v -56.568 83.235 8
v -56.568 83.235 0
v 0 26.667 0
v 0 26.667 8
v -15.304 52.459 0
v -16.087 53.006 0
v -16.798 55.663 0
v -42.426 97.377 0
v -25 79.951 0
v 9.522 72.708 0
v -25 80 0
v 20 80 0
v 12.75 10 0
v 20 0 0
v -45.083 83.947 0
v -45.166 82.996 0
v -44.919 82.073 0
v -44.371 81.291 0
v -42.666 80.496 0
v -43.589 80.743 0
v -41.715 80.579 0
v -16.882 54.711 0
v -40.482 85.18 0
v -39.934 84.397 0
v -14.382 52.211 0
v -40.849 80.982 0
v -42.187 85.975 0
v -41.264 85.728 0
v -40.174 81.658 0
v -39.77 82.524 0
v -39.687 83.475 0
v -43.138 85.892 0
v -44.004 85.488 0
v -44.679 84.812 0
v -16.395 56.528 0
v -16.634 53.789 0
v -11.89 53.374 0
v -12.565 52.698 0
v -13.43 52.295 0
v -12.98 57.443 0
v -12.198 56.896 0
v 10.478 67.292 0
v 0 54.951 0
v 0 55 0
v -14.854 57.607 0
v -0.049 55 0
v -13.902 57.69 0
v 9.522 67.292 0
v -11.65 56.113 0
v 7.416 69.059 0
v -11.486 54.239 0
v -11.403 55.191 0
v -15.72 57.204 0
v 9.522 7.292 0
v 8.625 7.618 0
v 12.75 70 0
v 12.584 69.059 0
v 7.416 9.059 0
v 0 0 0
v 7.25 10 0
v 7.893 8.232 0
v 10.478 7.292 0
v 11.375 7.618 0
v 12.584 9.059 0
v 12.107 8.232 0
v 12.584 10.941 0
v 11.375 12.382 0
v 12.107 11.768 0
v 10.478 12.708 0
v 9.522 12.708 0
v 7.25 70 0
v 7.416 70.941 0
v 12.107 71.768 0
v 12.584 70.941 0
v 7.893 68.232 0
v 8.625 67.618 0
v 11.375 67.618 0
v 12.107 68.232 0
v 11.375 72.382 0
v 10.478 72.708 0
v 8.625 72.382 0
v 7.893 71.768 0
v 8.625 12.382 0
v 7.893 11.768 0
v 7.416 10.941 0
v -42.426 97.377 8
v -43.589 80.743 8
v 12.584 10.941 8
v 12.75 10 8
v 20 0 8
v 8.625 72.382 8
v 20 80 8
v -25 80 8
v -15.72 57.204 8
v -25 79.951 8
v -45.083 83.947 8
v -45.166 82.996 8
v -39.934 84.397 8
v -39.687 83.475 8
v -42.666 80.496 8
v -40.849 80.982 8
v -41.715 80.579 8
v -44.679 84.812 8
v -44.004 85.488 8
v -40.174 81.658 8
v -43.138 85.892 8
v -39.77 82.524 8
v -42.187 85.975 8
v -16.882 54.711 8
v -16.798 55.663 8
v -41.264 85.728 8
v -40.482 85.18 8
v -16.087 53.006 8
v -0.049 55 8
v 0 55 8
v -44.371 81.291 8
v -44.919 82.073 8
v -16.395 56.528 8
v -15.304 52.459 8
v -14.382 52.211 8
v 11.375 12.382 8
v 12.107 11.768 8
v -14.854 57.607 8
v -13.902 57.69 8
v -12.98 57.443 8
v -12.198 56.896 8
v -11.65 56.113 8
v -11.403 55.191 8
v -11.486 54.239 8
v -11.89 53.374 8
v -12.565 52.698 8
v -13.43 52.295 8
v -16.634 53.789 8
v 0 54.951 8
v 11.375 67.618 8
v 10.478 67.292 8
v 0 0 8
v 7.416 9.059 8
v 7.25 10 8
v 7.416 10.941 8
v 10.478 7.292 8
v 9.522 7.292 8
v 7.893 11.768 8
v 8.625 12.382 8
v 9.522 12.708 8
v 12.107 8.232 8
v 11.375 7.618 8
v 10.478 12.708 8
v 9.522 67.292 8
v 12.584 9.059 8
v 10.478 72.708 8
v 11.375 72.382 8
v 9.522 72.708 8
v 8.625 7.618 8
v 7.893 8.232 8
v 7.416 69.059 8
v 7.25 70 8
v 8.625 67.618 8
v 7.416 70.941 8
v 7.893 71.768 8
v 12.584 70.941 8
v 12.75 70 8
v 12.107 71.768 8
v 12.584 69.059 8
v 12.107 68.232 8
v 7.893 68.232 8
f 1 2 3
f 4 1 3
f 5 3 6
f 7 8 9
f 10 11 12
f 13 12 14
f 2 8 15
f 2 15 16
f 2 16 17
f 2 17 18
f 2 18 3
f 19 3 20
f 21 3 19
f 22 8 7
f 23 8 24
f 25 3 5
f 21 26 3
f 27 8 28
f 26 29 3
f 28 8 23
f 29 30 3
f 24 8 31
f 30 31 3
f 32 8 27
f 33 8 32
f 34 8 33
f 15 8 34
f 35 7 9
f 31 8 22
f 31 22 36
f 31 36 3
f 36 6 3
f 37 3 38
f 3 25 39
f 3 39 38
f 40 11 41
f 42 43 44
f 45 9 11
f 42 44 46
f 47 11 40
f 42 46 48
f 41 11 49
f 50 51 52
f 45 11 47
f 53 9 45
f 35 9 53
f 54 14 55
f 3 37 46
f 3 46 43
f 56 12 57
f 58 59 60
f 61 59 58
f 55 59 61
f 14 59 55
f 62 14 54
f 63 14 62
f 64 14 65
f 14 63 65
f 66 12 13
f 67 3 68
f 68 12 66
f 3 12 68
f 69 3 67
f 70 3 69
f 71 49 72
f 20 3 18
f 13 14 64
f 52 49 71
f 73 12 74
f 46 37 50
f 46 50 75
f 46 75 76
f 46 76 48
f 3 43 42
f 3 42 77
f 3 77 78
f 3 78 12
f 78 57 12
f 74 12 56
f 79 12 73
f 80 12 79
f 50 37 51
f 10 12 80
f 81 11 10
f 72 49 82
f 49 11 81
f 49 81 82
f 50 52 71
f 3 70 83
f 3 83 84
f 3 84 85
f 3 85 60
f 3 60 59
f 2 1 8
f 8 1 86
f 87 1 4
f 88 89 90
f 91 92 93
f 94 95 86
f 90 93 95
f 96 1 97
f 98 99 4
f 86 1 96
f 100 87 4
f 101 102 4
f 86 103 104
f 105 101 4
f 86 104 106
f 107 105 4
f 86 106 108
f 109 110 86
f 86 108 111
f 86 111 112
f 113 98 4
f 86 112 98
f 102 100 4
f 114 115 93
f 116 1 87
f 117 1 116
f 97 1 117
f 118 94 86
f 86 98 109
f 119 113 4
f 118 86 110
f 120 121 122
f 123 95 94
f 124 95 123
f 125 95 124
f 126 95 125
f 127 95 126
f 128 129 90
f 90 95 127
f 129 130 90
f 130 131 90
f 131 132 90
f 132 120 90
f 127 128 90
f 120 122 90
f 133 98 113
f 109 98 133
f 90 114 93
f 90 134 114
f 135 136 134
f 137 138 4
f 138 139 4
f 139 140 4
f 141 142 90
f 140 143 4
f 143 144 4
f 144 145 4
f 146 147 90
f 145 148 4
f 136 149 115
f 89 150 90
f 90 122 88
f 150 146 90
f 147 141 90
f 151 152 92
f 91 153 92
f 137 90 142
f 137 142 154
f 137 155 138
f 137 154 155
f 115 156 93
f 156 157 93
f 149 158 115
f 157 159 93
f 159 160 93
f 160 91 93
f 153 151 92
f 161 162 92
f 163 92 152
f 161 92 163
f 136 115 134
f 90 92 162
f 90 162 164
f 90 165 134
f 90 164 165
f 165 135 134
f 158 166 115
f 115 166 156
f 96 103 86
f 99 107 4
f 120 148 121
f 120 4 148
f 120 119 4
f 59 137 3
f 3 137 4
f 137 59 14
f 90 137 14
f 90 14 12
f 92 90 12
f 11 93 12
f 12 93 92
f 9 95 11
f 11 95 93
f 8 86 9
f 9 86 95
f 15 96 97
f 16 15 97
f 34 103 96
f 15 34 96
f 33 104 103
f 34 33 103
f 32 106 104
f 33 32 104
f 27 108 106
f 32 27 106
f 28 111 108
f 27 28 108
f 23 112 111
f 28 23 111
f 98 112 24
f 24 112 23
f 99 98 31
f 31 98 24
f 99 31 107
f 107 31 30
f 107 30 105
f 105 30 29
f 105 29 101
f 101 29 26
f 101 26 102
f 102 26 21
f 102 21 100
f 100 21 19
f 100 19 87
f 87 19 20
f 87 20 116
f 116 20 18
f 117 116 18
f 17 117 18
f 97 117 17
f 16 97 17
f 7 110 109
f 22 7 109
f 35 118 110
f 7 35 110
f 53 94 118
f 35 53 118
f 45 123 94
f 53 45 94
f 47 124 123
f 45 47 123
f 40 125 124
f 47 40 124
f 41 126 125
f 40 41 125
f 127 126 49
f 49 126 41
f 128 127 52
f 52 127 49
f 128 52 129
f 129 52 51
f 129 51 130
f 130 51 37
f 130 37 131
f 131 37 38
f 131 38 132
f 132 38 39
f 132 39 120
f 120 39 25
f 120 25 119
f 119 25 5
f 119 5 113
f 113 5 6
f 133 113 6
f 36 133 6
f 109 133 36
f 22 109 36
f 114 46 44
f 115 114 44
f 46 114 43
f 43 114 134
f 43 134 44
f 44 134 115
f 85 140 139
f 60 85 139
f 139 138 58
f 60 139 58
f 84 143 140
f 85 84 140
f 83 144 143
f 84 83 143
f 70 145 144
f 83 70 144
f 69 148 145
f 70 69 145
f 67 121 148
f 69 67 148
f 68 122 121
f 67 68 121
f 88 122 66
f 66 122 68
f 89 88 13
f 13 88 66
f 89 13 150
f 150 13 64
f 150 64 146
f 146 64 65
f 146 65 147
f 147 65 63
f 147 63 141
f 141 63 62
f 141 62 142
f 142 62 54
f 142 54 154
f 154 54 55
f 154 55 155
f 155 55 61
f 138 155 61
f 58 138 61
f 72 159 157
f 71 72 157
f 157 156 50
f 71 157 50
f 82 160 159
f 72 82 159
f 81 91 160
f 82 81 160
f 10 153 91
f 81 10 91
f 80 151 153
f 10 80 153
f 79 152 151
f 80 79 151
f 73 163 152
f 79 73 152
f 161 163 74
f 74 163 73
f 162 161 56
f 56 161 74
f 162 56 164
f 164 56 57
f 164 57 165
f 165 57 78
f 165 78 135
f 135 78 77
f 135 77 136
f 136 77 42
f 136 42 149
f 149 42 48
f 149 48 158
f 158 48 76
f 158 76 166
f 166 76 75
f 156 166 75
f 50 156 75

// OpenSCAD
barwidth = 20;
width_ridge=4;
widthNema17=43;
nema17holeOffset =6;
nema17innerHole=25/2;
nema17Shaft=8/2;
motorThickNess=5;
offsetx =0;
offsety  =0;
barpositionz=30;
rodwidth =8.2;
nutwidth=16;

height = 90;
width = 80;

bearingod=15;
topbardistance=23;
bearinglength=26;
od624=13;
odpulley=12;
timingbeltthickness=1;

thickness=8;
spacing_bars = 50;
largeCircle = 70.0;
holeSize=5.5;
bardistance=50;
bearingoffset=2;


holes = [
	[barwidth/2,barwidth/2,5],
	[barwidth/2,width-barwidth/2,5],

];



difference() {
union() {


cube([barwidth,width,thickness],false);

translate([-25,width-25,0])
cube([30,25,thickness],false);

translate([0,width/3,0]) 
rotate([0,0,45]){

cube([barwidth,width,thickness],false);


}

}

translate([barwidth/2+width,barwidth/2+width,0]) {
		cylinder(h=thickness+2,r=50, center = false, $fn=100);
	}


	for(i = holes) {
		translate([offsetx + i[0],offsety + i[1],0])
			cylinder(h=thickness+2,r=holeSize/2, center = false, $fs=1);
	}


translate([0,width/3,0]) 
rotate([0,0,45]){


translate([barwidth/2,barwidth/2+20,0])
cylinder(h=thickness+2,r=holeSize/2, center = false, $fs=1);

translate([barwidth/2,width-barwidth/2,0])
cylinder(h=thickness+2,r=holeSize/2, center = false, $fs=1);
}
}
